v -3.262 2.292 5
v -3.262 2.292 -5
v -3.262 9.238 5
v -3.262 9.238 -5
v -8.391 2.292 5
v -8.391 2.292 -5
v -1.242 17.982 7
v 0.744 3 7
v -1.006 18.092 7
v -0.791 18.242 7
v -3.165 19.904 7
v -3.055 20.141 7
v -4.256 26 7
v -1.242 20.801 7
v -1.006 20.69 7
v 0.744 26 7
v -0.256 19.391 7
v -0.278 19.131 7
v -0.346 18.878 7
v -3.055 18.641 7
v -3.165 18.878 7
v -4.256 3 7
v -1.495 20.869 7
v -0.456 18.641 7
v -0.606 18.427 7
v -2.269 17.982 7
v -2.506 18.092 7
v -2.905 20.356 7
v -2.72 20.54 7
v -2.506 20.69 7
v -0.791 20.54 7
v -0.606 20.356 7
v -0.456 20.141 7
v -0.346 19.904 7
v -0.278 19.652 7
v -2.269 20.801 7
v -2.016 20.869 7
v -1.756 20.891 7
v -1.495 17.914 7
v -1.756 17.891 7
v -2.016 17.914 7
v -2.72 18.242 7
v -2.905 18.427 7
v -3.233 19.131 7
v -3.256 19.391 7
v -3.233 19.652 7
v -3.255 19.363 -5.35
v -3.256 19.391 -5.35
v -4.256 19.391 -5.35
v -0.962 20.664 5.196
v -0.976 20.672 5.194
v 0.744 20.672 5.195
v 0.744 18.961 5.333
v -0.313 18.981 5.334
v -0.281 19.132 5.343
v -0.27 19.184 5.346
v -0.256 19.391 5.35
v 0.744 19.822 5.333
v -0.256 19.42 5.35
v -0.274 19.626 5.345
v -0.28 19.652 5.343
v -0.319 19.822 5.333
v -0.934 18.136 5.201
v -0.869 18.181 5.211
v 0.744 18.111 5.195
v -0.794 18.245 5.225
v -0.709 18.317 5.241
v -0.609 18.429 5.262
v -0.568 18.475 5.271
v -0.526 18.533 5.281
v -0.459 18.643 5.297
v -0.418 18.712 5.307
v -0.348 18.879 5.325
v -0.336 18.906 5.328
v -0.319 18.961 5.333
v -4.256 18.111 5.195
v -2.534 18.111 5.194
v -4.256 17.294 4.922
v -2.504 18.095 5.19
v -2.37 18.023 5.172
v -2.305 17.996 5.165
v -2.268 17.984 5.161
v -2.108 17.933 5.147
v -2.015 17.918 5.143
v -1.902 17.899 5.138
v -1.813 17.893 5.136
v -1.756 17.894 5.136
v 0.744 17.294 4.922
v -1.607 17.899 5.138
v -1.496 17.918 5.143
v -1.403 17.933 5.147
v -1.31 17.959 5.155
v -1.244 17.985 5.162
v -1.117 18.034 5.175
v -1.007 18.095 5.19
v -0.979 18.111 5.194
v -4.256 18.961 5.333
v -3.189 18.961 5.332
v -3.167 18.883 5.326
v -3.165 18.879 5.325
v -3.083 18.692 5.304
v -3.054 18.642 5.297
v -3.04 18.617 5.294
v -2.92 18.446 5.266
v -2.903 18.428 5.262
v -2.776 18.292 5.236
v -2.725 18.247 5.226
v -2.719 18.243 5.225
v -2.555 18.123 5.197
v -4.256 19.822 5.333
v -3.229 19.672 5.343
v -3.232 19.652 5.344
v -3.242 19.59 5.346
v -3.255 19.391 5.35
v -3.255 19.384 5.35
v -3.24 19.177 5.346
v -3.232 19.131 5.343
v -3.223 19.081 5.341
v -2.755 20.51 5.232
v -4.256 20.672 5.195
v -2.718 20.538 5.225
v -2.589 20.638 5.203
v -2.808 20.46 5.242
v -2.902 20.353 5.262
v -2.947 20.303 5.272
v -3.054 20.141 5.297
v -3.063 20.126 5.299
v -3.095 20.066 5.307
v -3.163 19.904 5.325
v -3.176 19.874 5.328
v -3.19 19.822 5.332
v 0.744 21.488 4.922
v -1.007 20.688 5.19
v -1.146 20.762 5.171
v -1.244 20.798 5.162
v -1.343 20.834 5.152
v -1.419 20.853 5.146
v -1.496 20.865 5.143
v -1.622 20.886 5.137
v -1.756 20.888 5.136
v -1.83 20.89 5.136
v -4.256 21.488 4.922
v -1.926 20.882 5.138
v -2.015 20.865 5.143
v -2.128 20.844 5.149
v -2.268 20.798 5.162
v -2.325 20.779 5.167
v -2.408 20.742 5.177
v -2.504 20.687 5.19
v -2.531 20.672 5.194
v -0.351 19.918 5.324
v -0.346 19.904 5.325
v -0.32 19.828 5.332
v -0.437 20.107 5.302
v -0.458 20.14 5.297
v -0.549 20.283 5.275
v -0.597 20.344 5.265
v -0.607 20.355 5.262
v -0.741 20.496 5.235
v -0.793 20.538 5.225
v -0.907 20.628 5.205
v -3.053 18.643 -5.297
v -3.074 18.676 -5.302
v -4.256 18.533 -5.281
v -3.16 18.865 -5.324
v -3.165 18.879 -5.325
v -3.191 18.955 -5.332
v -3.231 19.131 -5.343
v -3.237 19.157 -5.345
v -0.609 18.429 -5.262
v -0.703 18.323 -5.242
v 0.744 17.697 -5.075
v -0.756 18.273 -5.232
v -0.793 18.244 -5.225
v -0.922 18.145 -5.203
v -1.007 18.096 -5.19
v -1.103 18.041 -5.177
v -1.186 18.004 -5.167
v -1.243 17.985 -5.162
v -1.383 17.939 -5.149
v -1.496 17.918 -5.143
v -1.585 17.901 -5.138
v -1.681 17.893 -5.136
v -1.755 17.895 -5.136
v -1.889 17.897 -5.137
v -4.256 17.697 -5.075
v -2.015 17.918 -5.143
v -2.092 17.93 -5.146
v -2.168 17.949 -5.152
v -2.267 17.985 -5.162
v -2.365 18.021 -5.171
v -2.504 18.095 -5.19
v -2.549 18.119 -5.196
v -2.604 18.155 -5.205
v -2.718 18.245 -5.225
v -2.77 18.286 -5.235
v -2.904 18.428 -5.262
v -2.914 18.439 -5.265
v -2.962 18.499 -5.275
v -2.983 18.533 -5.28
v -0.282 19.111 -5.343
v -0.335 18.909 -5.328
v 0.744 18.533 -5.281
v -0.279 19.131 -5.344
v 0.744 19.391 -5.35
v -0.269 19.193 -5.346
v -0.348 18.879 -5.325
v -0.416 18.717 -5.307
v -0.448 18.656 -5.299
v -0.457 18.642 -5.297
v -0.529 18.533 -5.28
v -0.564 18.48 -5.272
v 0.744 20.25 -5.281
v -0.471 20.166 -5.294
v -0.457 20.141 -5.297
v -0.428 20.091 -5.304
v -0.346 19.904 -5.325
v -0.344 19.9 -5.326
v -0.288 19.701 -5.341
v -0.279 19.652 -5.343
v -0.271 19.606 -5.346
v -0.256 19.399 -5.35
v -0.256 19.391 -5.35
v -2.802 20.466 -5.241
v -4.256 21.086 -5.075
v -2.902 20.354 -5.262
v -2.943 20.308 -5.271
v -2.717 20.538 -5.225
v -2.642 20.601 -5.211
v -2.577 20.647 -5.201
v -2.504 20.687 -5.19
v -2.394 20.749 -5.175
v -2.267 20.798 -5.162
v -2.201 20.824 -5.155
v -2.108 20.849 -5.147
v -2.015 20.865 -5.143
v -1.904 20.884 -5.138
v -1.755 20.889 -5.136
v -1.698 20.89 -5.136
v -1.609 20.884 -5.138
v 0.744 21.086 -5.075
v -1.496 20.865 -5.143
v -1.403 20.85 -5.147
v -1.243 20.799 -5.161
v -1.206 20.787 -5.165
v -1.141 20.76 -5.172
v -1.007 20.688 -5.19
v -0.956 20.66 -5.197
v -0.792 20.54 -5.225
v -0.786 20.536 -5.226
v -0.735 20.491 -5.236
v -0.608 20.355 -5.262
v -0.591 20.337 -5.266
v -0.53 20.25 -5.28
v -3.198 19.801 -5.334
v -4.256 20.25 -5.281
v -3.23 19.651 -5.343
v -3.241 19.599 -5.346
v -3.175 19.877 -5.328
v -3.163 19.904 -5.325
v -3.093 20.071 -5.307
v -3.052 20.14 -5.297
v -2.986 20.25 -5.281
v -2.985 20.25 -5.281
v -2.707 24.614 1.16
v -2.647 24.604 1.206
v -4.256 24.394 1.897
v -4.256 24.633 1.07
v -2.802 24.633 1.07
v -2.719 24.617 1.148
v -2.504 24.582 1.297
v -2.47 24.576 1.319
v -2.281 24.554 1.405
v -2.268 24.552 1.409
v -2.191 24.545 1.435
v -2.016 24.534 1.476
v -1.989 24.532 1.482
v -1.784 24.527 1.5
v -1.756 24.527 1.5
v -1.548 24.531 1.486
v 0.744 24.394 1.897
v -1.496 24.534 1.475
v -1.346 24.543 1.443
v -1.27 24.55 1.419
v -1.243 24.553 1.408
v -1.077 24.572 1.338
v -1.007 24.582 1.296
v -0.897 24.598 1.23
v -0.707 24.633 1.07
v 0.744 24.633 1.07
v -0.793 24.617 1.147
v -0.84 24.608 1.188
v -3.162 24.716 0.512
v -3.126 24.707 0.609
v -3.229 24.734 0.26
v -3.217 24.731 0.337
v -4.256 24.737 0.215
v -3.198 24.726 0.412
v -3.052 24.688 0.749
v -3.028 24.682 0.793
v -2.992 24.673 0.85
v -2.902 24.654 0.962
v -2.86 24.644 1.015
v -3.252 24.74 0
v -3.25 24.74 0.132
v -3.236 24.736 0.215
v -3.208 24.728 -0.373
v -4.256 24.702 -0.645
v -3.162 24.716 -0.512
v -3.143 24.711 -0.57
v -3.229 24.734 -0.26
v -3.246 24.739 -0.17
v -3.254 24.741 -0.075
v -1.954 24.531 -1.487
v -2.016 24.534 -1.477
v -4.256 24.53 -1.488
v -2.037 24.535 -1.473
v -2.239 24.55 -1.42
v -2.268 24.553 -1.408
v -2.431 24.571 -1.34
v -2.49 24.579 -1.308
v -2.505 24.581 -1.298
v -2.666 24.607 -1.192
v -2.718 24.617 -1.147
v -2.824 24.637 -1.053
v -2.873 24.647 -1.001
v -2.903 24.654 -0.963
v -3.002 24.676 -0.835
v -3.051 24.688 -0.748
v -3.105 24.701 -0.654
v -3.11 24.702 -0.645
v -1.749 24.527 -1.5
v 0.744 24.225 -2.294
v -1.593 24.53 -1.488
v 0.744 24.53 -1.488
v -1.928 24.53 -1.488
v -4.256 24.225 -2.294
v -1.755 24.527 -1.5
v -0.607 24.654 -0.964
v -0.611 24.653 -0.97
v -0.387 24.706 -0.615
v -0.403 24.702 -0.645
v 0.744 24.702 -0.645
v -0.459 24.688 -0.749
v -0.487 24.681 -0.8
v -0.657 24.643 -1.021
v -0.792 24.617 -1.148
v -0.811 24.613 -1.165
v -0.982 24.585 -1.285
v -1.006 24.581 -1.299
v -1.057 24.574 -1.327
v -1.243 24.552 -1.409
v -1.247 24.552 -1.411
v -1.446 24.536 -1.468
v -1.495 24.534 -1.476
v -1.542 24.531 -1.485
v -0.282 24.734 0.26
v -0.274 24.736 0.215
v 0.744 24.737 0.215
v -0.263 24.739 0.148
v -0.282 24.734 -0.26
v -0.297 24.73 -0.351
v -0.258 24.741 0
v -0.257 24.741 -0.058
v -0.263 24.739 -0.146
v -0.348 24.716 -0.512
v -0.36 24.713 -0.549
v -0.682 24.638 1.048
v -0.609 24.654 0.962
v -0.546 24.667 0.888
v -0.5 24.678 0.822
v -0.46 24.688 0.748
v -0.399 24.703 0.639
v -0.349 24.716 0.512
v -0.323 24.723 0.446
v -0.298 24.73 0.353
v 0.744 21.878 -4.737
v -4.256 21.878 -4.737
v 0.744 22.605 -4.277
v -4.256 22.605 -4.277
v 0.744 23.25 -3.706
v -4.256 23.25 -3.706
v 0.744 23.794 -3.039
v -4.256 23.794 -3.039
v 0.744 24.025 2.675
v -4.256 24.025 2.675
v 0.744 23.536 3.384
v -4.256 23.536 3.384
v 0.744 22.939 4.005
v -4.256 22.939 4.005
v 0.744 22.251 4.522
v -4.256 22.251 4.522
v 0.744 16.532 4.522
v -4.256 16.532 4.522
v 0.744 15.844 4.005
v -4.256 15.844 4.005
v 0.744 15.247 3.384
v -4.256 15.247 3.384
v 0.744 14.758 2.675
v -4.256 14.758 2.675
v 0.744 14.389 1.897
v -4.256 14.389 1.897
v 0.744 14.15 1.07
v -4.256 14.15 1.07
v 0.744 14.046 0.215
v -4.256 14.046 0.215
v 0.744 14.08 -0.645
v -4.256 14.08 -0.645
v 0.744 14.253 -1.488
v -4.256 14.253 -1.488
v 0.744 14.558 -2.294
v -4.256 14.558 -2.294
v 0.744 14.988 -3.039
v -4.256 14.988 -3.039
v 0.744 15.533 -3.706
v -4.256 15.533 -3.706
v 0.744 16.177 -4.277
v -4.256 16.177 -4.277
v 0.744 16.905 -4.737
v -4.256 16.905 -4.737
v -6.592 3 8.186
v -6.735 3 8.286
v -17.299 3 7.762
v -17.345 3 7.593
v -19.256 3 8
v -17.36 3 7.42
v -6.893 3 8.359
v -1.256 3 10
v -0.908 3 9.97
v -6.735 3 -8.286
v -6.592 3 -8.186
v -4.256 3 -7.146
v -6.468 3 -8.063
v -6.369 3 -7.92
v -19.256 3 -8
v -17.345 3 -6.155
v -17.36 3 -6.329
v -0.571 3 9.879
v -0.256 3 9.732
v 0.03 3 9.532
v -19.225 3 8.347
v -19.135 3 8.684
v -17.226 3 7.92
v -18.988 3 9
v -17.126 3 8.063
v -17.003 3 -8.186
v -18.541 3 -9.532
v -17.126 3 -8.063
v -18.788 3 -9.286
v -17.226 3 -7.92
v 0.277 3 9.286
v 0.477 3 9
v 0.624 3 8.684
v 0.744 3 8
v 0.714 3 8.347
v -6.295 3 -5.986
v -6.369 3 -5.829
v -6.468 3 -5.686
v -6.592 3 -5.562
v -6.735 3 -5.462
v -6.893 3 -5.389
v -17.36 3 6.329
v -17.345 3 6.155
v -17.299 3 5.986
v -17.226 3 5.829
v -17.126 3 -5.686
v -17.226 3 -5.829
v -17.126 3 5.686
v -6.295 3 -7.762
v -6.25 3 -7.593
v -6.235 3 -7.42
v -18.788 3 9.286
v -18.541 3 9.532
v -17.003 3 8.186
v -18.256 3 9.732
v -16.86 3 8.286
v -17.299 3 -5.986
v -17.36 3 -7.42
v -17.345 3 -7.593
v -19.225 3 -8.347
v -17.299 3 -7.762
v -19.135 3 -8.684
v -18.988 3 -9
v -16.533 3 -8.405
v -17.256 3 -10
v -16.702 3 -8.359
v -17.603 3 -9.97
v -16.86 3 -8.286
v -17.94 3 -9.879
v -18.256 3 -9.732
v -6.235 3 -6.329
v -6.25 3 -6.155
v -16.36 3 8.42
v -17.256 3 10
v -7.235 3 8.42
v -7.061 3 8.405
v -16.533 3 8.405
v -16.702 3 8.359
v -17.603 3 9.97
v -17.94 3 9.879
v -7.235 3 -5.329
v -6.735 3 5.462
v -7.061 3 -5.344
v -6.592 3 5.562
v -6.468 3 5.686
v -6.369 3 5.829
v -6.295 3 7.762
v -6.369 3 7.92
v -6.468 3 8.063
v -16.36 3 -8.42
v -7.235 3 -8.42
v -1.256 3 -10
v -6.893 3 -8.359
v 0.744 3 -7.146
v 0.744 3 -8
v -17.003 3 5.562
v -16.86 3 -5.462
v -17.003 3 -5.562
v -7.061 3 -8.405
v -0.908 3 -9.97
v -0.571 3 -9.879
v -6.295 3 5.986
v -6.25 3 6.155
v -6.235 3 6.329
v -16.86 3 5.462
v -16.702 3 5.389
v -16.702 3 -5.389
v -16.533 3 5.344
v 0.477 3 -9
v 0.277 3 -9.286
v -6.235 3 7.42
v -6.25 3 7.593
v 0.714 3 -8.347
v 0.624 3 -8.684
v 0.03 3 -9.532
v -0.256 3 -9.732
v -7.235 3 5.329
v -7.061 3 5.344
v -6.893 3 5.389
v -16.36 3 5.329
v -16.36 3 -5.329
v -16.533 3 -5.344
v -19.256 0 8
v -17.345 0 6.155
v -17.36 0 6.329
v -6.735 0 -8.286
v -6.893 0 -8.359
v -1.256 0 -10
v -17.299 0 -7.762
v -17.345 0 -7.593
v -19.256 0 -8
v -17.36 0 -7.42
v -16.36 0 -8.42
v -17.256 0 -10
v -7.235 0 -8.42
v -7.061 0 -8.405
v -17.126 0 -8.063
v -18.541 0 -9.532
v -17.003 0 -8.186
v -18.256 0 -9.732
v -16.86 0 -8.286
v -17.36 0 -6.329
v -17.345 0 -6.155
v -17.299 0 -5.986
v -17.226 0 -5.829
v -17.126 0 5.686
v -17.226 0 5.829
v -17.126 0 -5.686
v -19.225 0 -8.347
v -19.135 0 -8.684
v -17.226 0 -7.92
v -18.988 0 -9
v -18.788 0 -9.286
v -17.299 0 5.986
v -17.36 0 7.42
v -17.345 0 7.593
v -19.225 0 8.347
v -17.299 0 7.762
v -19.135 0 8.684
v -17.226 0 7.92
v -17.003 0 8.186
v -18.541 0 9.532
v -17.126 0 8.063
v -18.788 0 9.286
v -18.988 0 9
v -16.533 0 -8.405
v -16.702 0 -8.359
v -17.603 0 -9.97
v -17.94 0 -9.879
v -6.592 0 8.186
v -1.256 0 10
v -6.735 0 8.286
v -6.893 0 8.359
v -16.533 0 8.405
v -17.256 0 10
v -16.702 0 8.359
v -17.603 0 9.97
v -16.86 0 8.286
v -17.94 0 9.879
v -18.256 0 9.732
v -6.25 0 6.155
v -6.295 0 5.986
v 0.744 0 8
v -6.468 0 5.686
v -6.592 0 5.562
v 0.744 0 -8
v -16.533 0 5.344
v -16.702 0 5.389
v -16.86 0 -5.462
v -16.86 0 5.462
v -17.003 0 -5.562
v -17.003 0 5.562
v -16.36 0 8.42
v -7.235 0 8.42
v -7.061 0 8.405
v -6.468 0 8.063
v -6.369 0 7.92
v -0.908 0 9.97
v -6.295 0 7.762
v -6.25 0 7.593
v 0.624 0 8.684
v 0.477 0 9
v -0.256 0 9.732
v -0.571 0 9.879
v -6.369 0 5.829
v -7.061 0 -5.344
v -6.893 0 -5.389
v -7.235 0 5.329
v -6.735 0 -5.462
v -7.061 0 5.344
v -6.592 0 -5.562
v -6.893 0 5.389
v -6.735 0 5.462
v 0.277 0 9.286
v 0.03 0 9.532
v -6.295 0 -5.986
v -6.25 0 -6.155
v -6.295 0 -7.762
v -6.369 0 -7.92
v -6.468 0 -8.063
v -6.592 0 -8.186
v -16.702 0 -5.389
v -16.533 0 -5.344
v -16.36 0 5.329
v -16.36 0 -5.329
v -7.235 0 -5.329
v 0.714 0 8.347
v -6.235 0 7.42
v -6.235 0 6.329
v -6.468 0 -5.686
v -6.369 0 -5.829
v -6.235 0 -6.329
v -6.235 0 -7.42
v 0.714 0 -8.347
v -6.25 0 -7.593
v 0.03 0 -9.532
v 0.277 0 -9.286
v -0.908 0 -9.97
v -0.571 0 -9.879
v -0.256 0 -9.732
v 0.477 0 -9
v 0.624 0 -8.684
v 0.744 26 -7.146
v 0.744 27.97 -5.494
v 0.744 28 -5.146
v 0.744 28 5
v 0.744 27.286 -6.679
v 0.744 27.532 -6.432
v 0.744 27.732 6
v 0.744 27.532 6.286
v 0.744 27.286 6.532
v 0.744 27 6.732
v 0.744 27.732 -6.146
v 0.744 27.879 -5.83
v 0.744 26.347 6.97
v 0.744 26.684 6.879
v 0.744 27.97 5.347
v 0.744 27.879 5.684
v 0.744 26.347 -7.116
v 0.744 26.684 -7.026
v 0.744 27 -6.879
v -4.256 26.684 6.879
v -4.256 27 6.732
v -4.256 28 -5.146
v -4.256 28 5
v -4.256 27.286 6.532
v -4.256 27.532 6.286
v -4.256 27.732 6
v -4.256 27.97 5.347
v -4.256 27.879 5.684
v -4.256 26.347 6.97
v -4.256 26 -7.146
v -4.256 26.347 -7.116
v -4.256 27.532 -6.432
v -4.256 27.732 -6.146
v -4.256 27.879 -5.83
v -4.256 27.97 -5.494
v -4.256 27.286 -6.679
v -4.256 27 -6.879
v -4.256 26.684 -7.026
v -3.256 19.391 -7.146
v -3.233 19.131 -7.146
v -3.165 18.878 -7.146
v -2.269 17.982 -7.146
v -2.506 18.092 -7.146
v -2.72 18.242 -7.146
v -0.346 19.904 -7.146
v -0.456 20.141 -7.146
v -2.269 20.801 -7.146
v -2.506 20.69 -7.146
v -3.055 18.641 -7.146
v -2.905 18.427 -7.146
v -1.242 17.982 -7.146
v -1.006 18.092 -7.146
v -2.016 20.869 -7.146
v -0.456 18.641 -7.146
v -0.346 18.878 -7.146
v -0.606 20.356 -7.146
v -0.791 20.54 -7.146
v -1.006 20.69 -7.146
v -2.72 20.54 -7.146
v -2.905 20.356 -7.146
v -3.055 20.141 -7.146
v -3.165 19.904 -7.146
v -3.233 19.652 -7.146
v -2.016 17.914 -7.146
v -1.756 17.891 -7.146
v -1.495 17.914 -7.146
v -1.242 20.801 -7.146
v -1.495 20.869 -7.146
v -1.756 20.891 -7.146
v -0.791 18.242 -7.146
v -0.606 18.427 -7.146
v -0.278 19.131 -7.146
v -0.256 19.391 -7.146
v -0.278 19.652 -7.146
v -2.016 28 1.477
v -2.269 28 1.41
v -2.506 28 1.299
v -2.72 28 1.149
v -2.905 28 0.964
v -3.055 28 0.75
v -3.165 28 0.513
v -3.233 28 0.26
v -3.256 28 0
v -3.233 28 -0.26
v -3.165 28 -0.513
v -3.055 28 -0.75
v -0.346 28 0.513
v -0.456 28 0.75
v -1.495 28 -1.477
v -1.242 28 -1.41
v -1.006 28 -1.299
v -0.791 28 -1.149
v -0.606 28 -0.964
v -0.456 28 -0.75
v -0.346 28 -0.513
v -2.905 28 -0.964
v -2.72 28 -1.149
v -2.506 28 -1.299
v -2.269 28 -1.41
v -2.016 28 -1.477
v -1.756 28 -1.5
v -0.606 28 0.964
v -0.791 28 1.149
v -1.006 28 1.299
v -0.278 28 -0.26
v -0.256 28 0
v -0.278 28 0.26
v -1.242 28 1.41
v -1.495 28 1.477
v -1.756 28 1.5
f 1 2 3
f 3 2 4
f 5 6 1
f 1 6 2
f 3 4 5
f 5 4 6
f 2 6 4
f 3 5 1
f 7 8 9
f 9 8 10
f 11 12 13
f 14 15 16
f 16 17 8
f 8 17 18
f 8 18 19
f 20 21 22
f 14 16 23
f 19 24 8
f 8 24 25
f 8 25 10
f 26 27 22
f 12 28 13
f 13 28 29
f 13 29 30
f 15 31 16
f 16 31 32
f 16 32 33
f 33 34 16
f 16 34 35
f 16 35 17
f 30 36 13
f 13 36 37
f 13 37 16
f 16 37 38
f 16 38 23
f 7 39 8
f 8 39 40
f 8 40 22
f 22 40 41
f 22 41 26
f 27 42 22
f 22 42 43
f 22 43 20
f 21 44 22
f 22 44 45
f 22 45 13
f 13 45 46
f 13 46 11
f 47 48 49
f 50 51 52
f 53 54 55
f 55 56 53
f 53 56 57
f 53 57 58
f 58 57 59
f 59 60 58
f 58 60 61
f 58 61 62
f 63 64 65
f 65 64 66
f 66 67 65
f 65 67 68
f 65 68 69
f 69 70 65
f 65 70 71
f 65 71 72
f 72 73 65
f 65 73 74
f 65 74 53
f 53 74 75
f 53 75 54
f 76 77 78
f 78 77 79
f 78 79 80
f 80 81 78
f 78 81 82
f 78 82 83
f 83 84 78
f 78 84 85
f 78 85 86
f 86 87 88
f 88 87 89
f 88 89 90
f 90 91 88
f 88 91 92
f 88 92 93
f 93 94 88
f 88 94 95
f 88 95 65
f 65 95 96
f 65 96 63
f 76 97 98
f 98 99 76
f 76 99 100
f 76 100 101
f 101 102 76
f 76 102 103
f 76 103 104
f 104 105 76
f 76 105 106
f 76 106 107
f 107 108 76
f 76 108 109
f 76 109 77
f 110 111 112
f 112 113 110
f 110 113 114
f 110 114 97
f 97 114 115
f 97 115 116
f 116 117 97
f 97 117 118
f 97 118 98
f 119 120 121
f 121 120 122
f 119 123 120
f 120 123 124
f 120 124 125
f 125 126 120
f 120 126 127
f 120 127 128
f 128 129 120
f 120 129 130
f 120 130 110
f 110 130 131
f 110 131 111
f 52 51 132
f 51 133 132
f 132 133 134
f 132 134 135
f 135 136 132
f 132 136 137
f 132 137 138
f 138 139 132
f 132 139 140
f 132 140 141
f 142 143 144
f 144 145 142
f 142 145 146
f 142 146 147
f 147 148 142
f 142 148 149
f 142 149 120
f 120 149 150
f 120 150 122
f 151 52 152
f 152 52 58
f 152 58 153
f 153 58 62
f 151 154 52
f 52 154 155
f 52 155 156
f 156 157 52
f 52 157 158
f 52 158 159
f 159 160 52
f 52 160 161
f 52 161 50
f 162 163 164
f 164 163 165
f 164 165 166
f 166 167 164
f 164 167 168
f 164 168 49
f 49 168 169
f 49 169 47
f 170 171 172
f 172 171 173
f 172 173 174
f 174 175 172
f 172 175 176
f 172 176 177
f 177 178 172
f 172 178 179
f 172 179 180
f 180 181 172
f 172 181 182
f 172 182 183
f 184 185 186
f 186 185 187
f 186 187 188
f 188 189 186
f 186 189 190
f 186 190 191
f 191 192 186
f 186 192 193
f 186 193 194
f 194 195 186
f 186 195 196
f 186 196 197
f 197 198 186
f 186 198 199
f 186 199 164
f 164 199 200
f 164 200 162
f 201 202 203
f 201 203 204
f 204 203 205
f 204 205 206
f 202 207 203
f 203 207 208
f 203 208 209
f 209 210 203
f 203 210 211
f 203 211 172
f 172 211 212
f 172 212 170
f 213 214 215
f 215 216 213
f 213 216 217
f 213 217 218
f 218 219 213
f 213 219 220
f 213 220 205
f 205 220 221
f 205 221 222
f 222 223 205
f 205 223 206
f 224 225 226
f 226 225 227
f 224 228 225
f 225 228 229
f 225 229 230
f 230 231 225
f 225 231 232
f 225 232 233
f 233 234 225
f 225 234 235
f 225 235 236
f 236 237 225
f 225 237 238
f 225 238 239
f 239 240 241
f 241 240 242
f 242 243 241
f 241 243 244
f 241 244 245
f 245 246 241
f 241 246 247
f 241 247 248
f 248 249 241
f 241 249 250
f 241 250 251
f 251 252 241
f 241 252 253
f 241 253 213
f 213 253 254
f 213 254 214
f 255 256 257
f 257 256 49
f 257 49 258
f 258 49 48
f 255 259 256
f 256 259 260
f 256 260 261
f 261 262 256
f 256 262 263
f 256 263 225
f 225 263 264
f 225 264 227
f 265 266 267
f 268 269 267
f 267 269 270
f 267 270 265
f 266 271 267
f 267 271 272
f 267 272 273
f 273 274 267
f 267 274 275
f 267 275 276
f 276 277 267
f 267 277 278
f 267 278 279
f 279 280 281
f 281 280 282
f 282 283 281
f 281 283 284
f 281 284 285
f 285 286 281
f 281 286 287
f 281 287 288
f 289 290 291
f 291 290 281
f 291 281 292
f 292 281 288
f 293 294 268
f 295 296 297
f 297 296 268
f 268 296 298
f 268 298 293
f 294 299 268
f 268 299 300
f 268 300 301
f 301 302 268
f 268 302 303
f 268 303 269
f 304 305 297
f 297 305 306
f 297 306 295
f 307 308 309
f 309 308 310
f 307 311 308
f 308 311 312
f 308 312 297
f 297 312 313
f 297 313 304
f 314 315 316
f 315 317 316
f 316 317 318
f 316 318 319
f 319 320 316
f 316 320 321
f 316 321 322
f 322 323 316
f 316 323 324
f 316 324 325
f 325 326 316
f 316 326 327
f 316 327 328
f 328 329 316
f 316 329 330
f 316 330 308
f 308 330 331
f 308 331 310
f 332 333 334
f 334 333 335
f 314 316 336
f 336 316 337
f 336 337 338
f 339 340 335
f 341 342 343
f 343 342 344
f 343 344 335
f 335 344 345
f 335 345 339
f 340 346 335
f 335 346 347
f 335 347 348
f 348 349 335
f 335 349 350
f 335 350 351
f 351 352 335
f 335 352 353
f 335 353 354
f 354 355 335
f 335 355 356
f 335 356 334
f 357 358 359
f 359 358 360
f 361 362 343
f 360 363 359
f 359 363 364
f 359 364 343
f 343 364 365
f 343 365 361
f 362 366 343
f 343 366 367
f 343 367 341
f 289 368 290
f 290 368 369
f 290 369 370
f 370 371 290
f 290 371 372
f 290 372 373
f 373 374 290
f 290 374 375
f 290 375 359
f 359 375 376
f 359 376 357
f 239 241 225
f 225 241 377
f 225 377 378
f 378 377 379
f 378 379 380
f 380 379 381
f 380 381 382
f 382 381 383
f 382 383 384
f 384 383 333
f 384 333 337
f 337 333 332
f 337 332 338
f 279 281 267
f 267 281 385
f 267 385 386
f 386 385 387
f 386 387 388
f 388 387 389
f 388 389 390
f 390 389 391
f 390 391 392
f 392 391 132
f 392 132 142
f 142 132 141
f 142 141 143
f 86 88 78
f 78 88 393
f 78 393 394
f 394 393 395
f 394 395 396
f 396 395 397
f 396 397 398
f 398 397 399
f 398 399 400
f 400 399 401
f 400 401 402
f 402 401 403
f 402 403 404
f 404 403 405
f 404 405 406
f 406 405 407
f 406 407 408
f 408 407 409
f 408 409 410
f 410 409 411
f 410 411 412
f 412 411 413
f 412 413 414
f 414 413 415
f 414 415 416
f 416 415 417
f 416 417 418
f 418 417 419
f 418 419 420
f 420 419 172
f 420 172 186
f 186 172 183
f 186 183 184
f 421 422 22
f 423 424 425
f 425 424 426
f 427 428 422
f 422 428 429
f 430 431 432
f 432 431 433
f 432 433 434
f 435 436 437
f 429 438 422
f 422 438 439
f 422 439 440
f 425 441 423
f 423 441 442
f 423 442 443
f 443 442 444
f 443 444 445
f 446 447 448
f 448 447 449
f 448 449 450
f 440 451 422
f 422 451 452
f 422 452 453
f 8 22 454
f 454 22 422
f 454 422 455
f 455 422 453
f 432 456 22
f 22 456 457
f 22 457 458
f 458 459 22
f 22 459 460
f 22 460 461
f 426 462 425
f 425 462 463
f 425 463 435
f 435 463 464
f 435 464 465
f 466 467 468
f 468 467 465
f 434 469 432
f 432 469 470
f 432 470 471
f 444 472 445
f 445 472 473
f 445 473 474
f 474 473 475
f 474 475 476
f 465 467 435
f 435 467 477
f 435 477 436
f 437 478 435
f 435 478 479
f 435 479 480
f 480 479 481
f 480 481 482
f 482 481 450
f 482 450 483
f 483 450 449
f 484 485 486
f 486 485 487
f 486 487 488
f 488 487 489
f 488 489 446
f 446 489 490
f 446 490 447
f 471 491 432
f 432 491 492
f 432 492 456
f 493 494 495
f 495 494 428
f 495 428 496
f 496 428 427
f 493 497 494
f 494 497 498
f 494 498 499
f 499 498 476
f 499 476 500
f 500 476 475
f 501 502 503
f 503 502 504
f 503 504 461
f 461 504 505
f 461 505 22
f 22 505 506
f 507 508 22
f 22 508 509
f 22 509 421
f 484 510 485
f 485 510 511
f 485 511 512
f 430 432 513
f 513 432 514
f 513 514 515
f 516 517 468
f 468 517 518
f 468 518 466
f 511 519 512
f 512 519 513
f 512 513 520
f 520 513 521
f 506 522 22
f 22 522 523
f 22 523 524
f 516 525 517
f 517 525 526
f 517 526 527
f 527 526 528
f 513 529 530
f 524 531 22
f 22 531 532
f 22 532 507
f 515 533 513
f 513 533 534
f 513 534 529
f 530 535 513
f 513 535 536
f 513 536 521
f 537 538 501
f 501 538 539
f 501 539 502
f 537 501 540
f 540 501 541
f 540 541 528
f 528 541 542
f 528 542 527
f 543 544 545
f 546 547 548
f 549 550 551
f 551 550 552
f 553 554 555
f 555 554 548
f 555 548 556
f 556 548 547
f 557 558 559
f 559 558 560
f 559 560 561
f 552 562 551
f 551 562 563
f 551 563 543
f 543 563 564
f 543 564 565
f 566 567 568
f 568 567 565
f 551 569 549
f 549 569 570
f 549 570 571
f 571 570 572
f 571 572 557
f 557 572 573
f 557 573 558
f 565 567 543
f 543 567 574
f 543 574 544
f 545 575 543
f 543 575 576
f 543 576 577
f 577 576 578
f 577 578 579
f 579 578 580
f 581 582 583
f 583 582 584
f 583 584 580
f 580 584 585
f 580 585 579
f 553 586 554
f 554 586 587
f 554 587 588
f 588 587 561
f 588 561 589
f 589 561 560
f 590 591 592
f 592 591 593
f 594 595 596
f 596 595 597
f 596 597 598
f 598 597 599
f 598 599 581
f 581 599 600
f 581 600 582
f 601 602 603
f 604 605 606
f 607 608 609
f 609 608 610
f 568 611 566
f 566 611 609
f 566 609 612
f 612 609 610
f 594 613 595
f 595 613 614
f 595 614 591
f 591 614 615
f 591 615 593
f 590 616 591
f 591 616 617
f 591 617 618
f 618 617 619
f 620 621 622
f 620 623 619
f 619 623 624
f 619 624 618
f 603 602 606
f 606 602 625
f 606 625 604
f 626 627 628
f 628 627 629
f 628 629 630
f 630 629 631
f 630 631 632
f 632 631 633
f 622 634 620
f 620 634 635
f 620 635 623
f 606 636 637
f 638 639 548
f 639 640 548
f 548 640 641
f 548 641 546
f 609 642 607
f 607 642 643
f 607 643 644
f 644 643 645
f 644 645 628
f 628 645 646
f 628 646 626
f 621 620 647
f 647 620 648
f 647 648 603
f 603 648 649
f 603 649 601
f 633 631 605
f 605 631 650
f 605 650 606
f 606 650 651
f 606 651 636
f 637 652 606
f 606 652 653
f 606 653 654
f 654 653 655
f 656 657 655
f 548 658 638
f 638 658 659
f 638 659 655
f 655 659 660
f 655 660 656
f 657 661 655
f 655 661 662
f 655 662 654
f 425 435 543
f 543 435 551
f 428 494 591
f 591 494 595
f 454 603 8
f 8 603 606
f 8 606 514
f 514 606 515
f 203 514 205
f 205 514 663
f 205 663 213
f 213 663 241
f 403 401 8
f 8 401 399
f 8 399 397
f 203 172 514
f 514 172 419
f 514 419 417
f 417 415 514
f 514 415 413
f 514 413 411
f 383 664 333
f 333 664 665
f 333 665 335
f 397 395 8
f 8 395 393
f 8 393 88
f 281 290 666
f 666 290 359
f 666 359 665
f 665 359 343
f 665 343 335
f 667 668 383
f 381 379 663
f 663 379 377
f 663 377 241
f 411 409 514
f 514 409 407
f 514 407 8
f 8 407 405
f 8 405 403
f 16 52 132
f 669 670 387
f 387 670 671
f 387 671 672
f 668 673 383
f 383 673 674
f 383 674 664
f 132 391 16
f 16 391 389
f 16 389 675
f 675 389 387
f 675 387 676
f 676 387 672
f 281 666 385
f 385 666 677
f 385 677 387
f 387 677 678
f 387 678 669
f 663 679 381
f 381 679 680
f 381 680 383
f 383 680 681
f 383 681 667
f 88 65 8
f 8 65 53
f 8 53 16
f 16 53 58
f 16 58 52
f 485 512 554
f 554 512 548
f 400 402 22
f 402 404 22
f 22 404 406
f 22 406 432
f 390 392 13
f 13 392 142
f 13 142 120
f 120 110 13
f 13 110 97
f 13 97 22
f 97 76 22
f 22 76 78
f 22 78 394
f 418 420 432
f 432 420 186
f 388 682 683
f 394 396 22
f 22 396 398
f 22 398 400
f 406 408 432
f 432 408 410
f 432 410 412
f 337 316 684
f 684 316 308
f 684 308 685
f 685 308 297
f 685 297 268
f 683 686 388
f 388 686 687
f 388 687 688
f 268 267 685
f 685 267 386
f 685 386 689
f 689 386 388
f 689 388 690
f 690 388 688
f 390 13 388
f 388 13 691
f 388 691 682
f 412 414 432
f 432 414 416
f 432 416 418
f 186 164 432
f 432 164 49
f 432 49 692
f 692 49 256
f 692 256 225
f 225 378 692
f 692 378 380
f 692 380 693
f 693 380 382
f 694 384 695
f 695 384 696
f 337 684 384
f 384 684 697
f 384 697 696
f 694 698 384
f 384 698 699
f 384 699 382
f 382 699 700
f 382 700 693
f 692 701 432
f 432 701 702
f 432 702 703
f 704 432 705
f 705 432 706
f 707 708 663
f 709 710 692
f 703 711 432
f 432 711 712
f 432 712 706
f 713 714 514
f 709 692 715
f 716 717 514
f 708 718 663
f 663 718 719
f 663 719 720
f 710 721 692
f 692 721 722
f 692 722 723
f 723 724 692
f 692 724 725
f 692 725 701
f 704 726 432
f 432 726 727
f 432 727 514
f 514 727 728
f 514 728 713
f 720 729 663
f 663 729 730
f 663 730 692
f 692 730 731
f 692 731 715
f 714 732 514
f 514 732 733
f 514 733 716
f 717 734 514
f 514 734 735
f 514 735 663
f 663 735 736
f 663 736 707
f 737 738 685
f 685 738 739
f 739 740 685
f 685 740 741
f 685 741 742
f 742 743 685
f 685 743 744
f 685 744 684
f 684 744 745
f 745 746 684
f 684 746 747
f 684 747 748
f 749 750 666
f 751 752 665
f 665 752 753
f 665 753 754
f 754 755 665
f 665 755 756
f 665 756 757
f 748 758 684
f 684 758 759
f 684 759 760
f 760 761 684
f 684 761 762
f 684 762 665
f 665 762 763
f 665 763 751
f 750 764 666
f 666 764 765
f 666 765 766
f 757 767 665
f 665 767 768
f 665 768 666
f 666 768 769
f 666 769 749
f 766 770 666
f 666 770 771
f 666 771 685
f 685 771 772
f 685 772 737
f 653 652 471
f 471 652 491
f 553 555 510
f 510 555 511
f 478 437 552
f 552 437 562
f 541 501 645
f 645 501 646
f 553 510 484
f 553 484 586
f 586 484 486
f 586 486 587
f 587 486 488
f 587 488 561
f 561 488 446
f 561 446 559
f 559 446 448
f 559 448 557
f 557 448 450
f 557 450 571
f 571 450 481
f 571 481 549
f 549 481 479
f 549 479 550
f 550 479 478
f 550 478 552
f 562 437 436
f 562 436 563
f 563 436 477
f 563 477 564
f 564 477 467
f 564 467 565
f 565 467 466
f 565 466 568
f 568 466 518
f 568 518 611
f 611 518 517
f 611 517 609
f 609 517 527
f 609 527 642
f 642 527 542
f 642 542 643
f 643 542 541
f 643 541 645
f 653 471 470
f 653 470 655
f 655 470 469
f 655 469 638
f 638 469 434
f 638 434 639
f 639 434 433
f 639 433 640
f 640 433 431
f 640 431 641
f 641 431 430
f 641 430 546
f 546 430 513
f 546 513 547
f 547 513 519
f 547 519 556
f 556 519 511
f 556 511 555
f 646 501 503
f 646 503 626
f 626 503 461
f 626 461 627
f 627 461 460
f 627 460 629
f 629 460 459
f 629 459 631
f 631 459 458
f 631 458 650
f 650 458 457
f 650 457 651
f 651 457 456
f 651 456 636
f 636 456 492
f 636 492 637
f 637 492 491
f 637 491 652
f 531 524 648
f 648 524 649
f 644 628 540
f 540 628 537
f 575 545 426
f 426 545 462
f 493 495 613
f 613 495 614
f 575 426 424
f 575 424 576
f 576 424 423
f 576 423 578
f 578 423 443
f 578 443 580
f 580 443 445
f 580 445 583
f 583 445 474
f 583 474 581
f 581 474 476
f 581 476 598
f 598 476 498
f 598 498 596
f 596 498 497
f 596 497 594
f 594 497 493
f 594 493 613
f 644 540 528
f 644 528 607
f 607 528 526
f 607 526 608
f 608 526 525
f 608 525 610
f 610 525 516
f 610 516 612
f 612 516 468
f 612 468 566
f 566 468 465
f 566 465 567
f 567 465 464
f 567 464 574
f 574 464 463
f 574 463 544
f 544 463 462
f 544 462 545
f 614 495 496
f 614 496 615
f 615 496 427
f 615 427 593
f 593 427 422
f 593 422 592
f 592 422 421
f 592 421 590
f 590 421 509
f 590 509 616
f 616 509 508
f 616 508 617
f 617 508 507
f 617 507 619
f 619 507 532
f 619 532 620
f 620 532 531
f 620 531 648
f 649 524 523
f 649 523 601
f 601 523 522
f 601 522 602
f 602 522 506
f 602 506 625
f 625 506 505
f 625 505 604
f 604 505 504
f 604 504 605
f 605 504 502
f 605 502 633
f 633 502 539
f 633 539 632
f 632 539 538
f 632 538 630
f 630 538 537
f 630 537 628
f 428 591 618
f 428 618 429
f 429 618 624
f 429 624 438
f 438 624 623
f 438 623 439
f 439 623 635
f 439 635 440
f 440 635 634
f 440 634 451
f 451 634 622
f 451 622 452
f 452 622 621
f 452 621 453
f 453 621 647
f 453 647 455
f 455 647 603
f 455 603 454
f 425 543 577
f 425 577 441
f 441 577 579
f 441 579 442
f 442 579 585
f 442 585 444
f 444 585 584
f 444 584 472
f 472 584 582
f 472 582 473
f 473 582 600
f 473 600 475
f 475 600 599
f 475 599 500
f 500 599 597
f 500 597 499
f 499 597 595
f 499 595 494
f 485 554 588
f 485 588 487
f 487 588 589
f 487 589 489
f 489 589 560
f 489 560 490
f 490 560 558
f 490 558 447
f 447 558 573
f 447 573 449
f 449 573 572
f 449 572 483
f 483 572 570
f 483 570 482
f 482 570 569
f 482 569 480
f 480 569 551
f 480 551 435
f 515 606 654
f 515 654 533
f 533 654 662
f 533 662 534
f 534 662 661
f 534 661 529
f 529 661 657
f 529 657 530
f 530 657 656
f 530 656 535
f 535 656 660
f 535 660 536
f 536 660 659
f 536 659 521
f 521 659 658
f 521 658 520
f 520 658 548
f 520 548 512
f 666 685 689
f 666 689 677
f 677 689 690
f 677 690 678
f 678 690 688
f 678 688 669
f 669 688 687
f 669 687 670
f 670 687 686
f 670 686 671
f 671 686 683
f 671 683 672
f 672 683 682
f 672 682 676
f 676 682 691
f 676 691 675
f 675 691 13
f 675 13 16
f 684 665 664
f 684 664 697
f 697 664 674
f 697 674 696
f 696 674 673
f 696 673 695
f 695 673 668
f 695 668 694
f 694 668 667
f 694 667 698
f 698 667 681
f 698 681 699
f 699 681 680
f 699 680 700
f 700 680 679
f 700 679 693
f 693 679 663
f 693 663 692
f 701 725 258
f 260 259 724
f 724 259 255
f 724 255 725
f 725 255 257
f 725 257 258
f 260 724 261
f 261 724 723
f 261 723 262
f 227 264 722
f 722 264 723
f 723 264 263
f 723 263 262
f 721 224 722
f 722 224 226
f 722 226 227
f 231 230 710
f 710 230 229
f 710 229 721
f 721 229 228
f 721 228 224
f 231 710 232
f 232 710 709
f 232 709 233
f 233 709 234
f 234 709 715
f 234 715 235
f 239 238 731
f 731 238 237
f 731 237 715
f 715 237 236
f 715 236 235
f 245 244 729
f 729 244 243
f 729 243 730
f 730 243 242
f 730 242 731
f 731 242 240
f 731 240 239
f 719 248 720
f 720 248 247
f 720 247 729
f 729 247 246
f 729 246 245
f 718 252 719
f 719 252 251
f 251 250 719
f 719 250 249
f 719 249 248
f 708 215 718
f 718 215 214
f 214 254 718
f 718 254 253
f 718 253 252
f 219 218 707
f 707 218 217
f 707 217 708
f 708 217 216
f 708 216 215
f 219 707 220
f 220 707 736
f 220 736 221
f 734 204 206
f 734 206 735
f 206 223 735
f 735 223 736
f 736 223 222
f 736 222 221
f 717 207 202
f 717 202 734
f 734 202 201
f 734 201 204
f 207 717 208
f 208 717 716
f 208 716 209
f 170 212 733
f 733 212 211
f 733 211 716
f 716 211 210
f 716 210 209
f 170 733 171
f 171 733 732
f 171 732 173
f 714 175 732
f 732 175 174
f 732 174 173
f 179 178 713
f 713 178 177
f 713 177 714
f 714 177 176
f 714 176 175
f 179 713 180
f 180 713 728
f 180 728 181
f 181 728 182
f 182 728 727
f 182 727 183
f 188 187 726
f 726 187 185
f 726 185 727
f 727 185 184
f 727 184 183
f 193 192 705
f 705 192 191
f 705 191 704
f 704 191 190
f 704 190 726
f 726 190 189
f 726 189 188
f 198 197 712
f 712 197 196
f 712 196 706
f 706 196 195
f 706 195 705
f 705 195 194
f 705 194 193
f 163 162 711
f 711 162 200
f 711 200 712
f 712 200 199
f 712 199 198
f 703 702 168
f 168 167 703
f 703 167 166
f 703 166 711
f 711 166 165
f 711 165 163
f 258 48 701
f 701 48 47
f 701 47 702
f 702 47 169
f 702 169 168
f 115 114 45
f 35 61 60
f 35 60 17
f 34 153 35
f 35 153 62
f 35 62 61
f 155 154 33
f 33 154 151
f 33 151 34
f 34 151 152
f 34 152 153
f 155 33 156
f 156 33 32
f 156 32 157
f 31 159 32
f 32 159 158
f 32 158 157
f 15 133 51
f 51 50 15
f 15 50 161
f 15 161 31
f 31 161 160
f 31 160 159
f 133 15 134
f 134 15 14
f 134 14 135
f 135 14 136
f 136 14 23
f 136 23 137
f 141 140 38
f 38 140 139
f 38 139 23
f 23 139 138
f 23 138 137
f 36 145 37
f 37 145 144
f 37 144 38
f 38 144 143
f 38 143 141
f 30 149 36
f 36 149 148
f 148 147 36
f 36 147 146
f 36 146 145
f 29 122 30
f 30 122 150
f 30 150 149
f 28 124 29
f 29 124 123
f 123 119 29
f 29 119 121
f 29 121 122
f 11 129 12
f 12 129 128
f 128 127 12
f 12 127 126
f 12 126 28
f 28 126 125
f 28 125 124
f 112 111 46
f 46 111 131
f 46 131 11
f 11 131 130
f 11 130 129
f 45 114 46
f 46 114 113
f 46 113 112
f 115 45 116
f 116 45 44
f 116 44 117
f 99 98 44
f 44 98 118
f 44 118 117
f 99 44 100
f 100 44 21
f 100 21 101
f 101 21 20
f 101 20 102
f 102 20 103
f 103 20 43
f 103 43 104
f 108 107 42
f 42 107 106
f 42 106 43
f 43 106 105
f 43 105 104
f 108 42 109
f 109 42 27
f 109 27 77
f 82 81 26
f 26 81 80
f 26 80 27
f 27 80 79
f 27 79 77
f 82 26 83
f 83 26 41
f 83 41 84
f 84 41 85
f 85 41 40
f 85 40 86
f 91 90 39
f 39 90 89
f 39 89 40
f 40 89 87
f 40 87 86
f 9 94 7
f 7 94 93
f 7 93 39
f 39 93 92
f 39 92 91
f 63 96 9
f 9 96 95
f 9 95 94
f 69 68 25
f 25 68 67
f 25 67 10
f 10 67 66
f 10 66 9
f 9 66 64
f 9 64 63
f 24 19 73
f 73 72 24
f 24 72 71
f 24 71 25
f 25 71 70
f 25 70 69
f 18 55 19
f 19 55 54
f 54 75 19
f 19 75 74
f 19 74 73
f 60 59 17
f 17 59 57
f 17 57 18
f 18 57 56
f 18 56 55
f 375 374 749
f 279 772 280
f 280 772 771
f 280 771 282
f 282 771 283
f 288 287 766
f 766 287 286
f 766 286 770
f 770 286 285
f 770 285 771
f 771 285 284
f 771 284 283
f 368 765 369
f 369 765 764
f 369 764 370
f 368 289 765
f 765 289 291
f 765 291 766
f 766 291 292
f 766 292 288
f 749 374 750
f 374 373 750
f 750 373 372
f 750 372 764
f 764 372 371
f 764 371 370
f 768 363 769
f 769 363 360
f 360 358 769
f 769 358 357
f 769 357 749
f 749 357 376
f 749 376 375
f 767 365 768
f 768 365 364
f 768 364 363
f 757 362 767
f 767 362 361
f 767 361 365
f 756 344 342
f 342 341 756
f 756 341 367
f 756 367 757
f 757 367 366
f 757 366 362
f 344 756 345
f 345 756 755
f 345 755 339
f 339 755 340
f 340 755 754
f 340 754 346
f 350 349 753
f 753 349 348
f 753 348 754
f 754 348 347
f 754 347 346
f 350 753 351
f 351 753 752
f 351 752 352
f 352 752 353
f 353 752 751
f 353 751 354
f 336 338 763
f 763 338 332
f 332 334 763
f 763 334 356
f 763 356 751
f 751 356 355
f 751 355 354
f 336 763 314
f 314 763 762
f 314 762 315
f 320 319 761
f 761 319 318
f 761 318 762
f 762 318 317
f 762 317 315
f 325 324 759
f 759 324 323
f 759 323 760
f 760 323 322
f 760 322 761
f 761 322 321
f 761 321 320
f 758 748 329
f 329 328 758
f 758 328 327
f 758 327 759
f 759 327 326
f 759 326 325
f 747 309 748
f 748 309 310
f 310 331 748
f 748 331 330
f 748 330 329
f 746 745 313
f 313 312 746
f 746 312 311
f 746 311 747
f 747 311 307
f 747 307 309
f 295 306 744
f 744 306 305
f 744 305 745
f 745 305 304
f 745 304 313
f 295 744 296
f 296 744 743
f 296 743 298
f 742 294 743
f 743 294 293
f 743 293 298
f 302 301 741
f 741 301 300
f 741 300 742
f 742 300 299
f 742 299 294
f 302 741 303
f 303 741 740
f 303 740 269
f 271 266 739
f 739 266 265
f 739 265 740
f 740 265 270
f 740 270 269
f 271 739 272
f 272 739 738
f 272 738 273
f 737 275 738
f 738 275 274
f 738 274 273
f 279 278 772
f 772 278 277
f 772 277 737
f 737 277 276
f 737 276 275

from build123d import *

# Parameters (mm, degrees)
SKETCH_1_W             = 20
SKETCH_1_H             = 20
EXTRUDE_1_DEPTH        = 3
SKETCH_2_W             = 5
SKETCH_2_H             = 14.146458656
EXTRUDE_2_DEPTH        = 25
SKETCH_3_R             = 5.35
CUT_EXTRUDE_2_DEPTH    = 5
SKETCH_7_W             = 11.125278603
SKETCH_7_H             = 3.091277008
CUT_EXTRUDE_6_DEPTH    = 10
FILLET_3_R             = 1
FILLET_3_OF_MIRROR_2_R = 1
EXTRUDE_3_DEPTH        = 5
EXTRUDE_3_DEPTH_BACK   = 5
FILLET_1_R             = 2
FILLET_2_R             = 2
SKETCH_11_R            = 1.5
CUT_EXTRUDE_7_DEPTH    = 5
SKETCH_12_R            = 1.5
CUT_EXTRUDE_8_DEPTH    = 5


with BuildPart() as part:
    # 草图1 → 凸台-拉伸1 (new body)
    with BuildSketch(Plane(origin=(0, 0, 0), x_dir=(1, 0, 0), z_dir=(0, 1, 0))):
        with Locations((-9.255516134, 0)):
            Rectangle(SKETCH_1_W, SKETCH_1_H)
    extrude(amount=EXTRUDE_1_DEPTH)

    # 草图2 → 凸台-拉伸2 (add)
    with BuildSketch(Plane(origin=(0, 3, 0), x_dir=(1, 0, 0), z_dir=(0, 1, 0))):
        with Locations((-1.755516134, 0.073229328)):
            Rectangle(SKETCH_2_W, SKETCH_2_H)
    extrude(amount=EXTRUDE_2_DEPTH)

    # 草图3 → 切除-拉伸2 (cut)
    with BuildSketch(Plane(origin=(0.744483866, 0, 0), x_dir=(0, 0, -1), z_dir=(1, 0, 0))):
        with Locations((0, 19.391413774)):
            Circle(SKETCH_3_R)
    extrude(amount=-CUT_EXTRUDE_2_DEPTH, mode=Mode.SUBTRACT)

    # 草图7 → 切除-拉伸6 (cut)
    with BuildSketch(Plane.XZ):
        with Locations((-11.79716819, -6.874153795)):
            Rectangle(SKETCH_7_W, SKETCH_7_H)
    cut_extrude_6 = extrude(amount=-CUT_EXTRUDE_6_DEPTH, mode=Mode.SUBTRACT)

    # 圆角3
    fillet_3_edges = [part.edges().sort_by_distance(p)[0] for p in [
        (-6.234528888, 1.5, -5.328515291),
        (-6.234528888, 1.5, -8.419792299),
        (-17.359807491, 1.5, -8.419792299),
        (-17.359807491, 1.5, -5.328515291),
    ]]
    fillet(fillet_3_edges, radius=FILLET_3_R)

    # 镜向2: 切除-拉伸6 across plane
    add(cut_extrude_6.mirror(Plane.XY), mode=Mode.SUBTRACT)

    # 圆角3 of 镜向2
    fillet_3_of_mirror_2_edges = [part.edges().sort_by_distance(p)[0] for p in [
        (-6.234528888, 1.5, 5.328515291),
        (-6.234528888, 1.5, 8.419792299),
        (-17.359807491, 1.5, 8.419792299),
        (-17.359807491, 1.5, 5.328515291),
    ]]
    fillet(fillet_3_of_mirror_2_edges, radius=FILLET_3_OF_MIRROR_2_R)

    # 圆角1
    fillet_1_edges = [part.edges().sort_by_distance(p)[0] for p in [
        (0.744483866, 1.5, 10),
        (-19.255516134, 1.5, 10),
        (-19.255516134, 1.5, -10),
        (0.744483866, 1.5, -10),
    ]]
    fillet(fillet_1_edges, radius=FILLET_1_R)

    # 圆角2
    fillet_2_edges = [part.edges().sort_by_distance(p)[0] for p in [
        (-1.755516134, 28, 7),
        (-1.755516134, 28, -7.146458656),
    ]]
    fillet(fillet_2_edges, radius=FILLET_2_R)

    # 草图11 → 切除-拉伸7 (cut)
    with BuildSketch(Plane(origin=(0, 0, -7.146458656), x_dir=(-1, 0, 0), z_dir=(0, 0, -1))):
        with Locations((1.755516134, 19.391413774)):
            Circle(SKETCH_11_R)
    cut_extrude_7 = extrude(amount=-CUT_EXTRUDE_7_DEPTH, mode=Mode.SUBTRACT)

    # 镜向3: 切除-拉伸7 across plane
    add(cut_extrude_7.mirror(Plane.XY), mode=Mode.SUBTRACT)

    # 草图12 → 切除-拉伸8 (cut)
    with BuildSketch(Plane(origin=(0, 28, 0), x_dir=(1, 0, 0), z_dir=(0, 1, 0))):
        with Locations(Location((-1.755516134, 0, 0), (0, 0, 270))):
            Circle(SKETCH_12_R)
    extrude(amount=-CUT_EXTRUDE_8_DEPTH, mode=Mode.SUBTRACT)


with BuildPart() as body_2:
    # 草图9 → 凸台-拉伸3 (new, two sides: drawn at the far end of the back side and taken through both)
    with BuildSketch(Plane.XY.offset(-EXTRUDE_3_DEPTH_BACK)):
        Polygon((-3.262396556, 2.292462797), (-8.391041548, 2.292462797), (-3.262396556, 9.237733311), align=None)
    extrude(amount=EXTRUDE_3_DEPTH + EXTRUDE_3_DEPTH_BACK)


solid = Compound([part.part, body_2.part])
